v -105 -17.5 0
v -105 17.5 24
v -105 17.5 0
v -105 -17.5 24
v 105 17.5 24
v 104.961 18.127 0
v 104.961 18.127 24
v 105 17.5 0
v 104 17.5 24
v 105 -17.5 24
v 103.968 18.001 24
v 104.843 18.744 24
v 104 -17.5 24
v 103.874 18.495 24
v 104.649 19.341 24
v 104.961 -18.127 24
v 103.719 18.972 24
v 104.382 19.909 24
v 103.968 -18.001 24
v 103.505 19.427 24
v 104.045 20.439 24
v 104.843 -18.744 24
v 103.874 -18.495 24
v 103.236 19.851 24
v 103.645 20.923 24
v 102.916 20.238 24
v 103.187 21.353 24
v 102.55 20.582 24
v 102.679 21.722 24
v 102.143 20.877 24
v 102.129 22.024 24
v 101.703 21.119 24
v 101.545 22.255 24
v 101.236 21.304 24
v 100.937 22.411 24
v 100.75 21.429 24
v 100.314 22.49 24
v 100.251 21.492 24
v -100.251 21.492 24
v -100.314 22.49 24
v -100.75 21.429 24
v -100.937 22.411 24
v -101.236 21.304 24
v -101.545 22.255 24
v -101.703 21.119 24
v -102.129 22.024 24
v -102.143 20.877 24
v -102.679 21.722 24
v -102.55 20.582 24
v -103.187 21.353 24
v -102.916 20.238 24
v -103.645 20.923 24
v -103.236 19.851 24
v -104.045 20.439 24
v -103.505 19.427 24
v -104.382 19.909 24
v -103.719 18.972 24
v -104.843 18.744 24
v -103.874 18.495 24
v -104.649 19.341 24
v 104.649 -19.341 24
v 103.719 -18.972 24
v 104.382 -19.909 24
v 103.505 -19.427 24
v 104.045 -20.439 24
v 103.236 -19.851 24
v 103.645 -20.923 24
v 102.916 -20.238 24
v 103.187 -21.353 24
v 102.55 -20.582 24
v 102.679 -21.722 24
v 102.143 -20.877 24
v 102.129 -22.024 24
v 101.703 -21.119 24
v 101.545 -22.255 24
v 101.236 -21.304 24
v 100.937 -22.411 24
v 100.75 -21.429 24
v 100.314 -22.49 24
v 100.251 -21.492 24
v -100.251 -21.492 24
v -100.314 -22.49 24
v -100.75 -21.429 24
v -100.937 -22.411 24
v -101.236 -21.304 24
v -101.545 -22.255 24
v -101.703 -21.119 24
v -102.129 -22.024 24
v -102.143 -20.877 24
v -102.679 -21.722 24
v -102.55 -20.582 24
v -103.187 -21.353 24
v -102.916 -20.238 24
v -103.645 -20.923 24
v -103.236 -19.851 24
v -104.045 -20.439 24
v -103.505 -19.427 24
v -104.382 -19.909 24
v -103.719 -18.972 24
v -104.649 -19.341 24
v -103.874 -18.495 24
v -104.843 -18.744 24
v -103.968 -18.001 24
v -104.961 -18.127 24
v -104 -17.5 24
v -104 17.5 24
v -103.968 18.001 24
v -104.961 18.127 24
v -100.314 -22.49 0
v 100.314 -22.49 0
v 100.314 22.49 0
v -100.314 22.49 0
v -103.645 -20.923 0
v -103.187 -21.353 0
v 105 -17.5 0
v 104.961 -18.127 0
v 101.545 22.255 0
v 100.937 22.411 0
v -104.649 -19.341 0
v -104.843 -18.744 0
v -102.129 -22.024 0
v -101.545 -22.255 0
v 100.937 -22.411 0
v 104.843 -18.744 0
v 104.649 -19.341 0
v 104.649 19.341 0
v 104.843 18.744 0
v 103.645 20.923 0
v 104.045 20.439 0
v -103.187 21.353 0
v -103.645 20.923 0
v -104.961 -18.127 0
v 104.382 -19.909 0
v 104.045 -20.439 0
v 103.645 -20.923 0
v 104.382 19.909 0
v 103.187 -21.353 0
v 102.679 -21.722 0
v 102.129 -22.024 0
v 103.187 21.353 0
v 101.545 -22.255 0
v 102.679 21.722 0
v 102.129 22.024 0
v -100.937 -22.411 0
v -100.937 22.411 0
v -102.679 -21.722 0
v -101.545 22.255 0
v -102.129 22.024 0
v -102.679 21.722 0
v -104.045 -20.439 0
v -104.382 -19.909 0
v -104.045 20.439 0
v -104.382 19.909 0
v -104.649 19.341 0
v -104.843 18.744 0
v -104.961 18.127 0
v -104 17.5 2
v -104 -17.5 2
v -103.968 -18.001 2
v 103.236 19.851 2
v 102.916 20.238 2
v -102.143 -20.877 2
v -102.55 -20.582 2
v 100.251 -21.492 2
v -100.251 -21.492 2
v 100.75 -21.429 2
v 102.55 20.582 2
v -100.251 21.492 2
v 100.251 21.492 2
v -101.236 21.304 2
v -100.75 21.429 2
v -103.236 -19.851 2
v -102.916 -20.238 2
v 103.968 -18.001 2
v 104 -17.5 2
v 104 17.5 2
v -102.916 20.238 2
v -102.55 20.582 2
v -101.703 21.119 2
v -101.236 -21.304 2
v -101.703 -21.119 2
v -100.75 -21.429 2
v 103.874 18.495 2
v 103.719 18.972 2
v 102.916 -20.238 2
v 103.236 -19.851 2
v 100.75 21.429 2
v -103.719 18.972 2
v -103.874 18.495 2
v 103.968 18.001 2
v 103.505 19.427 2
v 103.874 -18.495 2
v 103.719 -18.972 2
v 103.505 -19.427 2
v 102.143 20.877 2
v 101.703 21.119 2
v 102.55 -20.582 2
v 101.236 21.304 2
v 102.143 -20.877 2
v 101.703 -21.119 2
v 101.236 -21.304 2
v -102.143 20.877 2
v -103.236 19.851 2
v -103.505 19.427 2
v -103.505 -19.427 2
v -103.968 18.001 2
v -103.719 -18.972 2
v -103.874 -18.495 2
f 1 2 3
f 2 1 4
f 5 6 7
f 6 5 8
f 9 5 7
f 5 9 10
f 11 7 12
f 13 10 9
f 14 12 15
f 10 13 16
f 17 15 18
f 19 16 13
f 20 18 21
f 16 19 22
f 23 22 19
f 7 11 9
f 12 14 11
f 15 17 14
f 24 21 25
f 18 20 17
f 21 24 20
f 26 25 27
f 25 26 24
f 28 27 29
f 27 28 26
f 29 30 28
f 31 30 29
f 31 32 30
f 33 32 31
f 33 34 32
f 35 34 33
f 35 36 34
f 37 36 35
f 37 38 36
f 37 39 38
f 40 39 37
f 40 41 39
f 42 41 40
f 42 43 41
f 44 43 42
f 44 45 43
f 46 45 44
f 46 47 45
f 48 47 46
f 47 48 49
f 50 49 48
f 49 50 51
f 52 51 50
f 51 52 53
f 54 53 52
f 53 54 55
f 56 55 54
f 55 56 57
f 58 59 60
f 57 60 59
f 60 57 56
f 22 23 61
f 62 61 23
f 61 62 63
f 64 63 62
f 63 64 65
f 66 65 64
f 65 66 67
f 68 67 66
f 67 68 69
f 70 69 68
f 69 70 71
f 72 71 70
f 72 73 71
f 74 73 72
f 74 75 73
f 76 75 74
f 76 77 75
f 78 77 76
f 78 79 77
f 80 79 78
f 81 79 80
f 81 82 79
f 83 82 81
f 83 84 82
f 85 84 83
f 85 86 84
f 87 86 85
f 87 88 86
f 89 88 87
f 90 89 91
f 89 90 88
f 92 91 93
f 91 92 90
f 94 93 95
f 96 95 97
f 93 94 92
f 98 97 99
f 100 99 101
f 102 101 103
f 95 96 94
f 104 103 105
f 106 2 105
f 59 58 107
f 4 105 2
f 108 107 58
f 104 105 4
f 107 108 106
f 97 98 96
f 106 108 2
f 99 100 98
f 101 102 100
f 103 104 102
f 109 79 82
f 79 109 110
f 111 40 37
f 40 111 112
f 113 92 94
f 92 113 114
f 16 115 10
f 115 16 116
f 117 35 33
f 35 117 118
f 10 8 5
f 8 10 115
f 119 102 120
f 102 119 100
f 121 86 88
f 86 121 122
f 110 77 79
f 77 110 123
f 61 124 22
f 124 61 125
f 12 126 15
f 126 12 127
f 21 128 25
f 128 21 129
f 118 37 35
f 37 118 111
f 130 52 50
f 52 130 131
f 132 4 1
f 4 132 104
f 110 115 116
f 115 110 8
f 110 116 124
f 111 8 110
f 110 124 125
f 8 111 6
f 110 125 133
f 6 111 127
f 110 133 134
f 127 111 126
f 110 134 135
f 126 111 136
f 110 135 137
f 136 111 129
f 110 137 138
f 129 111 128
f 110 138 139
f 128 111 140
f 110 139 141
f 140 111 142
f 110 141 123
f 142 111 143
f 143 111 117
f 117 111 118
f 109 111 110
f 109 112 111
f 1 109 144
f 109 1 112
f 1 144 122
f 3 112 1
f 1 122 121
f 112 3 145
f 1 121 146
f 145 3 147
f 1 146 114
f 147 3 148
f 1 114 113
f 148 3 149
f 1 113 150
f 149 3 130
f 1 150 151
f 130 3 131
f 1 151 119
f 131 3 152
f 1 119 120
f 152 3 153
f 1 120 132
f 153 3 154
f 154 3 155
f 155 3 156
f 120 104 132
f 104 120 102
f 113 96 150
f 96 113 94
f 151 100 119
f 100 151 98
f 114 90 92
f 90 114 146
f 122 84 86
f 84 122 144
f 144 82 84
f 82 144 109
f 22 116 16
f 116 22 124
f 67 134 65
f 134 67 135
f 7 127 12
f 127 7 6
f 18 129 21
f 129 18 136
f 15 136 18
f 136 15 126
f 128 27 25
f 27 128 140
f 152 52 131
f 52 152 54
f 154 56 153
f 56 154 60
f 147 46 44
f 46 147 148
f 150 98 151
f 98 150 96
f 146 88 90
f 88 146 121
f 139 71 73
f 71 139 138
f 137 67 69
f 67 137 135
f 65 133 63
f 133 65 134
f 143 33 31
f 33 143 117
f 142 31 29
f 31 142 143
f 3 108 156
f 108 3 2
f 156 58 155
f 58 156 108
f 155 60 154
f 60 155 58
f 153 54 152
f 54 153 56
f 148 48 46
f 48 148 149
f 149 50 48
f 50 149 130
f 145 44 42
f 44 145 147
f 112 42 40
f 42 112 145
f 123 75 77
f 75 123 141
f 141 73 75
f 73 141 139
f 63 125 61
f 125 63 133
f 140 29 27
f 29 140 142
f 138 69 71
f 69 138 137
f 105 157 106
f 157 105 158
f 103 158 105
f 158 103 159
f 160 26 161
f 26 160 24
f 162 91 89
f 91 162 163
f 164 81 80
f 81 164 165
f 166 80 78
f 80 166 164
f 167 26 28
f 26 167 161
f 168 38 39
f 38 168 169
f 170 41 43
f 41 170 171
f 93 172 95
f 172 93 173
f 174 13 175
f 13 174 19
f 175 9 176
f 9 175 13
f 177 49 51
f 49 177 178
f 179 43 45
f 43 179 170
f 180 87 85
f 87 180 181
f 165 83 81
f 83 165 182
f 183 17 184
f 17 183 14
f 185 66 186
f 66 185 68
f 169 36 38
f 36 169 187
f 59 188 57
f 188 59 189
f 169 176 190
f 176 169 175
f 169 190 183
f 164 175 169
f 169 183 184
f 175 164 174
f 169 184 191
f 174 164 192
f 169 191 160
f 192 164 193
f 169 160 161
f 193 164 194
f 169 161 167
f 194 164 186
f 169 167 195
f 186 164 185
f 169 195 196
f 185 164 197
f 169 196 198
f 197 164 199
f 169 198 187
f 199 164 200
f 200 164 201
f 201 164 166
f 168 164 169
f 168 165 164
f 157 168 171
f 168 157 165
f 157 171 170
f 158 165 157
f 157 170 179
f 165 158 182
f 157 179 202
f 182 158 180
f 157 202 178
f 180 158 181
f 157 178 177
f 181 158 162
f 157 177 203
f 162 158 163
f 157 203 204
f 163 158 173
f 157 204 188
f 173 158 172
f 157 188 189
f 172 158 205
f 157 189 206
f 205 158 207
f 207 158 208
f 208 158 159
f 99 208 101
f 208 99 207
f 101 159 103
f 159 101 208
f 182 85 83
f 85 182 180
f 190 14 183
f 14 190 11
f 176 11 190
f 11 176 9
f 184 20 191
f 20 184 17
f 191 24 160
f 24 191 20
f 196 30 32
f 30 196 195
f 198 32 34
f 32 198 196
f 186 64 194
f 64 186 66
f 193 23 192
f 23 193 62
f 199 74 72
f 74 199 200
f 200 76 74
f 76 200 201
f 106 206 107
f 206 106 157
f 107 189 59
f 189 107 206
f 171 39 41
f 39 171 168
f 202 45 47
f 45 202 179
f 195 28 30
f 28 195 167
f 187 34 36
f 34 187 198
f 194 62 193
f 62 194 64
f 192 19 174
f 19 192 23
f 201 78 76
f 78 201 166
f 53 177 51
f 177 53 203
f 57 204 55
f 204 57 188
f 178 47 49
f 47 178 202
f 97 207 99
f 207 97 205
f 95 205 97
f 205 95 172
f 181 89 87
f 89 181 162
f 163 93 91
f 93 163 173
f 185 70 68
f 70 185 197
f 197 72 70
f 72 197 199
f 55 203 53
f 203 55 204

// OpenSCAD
$fn = 50;


difference() {
	union() {
		hull() {
			translate(v = [-100.0000000000, 17.5000000000, 0]) {
				cylinder(h = 24, r = 5);
			}
			translate(v = [100.0000000000, 17.5000000000, 0]) {
				cylinder(h = 24, r = 5);
			}
			translate(v = [-100.0000000000, -17.5000000000, 0]) {
				cylinder(h = 24, r = 5);
			}
			translate(v = [100.0000000000, -17.5000000000, 0]) {
				cylinder(h = 24, r = 5);
			}
		}
	}
	union() {
		translate(v = [0, 0, 2]) {
			hull() {
				translate(v = [-100.0000000000, 17.5000000000, 0]) {
					cylinder(h = 22, r = 4);
				}
				translate(v = [100.0000000000, 17.5000000000, 0]) {
					cylinder(h = 22, r = 4);
				}
				translate(v = [-100.0000000000, -17.5000000000, 0]) {
					cylinder(h = 22, r = 4);
				}
				translate(v = [100.0000000000, -17.5000000000, 0]) {
					cylinder(h = 22, r = 4);
				}
			}
		}
	}
}
